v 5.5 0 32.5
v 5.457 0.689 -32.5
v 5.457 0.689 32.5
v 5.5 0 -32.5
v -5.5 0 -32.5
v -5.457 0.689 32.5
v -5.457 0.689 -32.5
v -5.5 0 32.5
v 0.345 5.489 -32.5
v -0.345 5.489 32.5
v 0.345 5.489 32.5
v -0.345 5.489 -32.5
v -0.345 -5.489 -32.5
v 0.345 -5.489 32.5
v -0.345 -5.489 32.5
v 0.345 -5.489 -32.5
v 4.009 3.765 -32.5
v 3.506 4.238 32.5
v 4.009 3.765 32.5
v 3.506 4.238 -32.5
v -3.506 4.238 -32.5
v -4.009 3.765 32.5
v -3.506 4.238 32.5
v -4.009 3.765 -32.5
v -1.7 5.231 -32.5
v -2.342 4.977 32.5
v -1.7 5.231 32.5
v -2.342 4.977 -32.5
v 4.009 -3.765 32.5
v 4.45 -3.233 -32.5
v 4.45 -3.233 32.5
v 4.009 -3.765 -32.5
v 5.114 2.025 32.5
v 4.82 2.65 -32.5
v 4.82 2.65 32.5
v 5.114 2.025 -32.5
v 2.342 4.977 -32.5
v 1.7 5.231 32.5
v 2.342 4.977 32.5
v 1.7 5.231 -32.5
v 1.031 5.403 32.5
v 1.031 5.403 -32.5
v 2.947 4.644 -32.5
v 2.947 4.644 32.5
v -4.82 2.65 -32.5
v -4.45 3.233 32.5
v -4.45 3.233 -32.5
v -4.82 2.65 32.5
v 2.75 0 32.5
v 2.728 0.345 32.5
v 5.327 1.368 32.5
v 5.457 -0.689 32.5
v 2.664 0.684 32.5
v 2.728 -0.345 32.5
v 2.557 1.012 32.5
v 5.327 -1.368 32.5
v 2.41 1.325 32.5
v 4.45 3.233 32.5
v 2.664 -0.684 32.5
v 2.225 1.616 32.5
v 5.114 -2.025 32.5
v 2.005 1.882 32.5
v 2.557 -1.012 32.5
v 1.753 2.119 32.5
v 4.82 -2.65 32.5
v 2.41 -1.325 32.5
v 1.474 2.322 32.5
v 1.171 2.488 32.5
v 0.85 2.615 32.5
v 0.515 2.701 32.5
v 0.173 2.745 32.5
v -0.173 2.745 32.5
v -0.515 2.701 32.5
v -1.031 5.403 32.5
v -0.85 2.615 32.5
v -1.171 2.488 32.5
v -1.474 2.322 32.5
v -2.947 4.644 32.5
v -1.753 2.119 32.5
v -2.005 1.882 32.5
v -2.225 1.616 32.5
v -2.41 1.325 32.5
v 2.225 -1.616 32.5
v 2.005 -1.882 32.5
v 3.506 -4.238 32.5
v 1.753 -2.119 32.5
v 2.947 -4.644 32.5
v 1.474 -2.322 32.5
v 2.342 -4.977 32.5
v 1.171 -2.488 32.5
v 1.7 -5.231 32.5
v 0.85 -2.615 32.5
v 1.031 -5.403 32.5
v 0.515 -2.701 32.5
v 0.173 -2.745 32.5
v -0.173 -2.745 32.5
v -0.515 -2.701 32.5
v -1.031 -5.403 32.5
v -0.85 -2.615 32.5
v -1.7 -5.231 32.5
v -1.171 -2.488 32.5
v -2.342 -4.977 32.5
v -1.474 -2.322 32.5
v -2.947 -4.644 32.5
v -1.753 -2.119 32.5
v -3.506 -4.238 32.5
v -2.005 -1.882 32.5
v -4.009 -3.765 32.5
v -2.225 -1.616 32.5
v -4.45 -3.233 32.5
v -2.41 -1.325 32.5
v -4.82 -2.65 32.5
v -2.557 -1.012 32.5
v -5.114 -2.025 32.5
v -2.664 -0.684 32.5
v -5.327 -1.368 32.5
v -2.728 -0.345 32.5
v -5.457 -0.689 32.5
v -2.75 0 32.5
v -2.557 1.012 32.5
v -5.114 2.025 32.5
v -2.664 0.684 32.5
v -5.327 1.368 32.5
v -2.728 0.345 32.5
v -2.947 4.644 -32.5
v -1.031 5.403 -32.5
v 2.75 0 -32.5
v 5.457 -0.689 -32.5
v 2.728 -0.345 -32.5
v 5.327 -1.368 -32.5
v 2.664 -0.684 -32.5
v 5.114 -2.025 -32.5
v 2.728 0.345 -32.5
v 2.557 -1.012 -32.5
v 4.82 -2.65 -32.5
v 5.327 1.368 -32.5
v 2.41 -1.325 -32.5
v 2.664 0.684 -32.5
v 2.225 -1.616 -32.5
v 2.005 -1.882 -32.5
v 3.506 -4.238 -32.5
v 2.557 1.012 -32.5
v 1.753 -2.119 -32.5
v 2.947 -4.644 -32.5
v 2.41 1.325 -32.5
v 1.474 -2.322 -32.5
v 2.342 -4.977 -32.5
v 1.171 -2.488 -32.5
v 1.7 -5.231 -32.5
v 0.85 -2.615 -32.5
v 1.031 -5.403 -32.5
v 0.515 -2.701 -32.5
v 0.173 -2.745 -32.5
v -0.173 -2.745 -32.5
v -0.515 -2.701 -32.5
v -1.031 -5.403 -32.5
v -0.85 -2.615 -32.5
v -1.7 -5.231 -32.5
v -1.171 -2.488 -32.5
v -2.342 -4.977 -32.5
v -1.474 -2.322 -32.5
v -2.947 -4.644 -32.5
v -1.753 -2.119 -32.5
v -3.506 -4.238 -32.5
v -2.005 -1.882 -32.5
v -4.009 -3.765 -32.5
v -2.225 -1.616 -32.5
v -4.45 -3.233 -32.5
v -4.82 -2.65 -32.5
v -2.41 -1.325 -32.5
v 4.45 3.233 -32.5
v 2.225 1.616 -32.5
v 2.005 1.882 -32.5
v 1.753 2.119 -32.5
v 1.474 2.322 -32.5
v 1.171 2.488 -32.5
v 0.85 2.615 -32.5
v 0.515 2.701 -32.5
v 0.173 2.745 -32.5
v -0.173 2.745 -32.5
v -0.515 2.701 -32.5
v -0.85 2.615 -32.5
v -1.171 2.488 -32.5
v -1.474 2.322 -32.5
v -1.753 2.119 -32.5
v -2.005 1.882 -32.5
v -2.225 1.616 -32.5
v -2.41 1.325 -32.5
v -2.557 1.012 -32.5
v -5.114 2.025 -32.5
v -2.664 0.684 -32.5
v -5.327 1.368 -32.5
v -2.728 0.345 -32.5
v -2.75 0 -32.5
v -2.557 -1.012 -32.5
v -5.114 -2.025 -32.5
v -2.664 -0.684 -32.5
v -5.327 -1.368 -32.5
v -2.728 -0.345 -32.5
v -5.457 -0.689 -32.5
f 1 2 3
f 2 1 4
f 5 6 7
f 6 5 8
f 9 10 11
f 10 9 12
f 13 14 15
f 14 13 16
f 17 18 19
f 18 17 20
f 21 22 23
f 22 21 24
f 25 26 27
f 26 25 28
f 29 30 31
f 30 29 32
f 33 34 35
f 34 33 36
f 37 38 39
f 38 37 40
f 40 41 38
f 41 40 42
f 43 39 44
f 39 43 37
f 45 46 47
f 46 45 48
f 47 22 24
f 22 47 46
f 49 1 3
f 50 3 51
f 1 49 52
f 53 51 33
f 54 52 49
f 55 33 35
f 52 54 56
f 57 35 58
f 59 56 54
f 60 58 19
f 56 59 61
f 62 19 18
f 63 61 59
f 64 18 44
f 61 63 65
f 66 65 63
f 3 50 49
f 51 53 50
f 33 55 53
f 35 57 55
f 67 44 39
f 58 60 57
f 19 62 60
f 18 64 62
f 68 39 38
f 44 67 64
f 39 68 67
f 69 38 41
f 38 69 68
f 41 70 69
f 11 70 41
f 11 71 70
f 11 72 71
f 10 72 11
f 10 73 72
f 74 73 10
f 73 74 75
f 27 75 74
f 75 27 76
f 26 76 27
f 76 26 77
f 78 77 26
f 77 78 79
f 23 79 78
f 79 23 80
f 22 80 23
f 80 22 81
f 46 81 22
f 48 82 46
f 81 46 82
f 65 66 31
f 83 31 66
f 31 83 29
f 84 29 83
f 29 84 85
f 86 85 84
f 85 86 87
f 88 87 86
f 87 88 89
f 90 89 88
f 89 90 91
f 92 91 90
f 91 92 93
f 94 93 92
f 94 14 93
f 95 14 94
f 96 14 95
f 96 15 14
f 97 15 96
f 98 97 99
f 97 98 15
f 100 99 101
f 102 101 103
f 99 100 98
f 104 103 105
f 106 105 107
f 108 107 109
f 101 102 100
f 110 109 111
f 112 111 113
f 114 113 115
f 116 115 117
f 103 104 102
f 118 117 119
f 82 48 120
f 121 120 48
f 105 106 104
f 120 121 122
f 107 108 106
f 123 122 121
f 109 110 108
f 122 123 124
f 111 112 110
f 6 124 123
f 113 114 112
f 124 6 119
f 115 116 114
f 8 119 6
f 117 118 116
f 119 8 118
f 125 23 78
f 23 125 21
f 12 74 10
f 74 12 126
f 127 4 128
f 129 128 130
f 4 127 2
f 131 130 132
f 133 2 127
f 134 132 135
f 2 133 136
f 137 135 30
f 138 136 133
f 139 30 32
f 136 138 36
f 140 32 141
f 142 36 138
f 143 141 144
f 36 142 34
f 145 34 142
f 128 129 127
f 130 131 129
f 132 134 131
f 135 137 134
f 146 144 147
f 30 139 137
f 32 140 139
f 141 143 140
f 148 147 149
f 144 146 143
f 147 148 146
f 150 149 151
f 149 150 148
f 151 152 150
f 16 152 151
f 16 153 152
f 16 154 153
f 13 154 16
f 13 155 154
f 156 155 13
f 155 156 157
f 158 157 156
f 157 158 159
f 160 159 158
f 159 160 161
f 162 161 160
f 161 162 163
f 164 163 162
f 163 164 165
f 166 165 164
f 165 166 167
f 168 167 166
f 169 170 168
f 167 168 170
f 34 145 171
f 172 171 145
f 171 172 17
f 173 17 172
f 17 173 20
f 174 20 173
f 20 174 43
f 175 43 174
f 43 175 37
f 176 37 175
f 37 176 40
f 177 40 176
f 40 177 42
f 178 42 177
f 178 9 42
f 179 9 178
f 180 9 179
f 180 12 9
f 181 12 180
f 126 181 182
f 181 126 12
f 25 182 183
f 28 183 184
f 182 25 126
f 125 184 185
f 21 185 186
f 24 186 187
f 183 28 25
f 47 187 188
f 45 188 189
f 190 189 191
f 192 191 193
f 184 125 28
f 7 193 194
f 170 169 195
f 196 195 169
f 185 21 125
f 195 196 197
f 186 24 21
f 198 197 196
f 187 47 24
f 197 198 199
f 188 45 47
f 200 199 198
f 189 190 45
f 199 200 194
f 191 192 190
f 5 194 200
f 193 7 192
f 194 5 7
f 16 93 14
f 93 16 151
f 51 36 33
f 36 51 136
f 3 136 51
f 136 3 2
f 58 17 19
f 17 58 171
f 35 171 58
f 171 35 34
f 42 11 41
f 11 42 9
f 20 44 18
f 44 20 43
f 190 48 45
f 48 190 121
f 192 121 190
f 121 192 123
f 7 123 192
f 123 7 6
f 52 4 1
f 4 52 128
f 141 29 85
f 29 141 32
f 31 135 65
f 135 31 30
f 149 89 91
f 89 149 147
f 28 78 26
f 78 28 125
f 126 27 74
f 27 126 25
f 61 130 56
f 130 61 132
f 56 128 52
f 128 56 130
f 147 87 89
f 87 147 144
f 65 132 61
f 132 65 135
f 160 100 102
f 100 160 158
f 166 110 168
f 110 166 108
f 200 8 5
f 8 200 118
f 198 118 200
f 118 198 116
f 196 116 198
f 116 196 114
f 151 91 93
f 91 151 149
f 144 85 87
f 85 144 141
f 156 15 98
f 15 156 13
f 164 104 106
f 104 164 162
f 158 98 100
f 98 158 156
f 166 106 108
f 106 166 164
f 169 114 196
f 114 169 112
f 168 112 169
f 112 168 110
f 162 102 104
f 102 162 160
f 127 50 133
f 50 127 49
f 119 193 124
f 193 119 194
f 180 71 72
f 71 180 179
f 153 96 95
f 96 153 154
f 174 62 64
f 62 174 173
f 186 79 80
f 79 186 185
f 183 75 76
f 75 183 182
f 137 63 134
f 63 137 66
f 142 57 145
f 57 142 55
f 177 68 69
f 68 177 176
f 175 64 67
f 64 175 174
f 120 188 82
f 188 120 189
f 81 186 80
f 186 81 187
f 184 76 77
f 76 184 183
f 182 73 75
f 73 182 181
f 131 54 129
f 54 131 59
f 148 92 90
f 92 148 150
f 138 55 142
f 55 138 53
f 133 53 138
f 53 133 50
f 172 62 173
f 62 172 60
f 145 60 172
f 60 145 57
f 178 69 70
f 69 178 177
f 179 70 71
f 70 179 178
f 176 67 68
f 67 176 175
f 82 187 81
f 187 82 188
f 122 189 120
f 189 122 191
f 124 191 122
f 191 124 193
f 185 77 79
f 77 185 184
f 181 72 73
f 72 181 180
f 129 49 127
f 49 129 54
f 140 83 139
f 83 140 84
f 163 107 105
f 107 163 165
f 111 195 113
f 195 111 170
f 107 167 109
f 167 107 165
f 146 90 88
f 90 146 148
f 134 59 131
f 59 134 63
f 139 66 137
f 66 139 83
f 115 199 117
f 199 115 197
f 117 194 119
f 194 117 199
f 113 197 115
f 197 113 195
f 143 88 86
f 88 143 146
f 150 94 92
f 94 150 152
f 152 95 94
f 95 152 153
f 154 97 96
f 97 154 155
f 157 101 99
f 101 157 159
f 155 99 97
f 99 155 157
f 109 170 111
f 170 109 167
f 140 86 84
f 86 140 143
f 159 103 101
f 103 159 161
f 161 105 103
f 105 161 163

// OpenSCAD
$fn = 50;


difference() {
	union() {
		translate(v = [0, 0, -32.5000000000]) {
			cylinder(h = 65, r = 5.5000000000);
		}
	}
	union() {
		translate(v = [0, 0, -100.0000000000]) {
			cylinder(h = 200, r = 2.7500000000);
		}
	}
}
